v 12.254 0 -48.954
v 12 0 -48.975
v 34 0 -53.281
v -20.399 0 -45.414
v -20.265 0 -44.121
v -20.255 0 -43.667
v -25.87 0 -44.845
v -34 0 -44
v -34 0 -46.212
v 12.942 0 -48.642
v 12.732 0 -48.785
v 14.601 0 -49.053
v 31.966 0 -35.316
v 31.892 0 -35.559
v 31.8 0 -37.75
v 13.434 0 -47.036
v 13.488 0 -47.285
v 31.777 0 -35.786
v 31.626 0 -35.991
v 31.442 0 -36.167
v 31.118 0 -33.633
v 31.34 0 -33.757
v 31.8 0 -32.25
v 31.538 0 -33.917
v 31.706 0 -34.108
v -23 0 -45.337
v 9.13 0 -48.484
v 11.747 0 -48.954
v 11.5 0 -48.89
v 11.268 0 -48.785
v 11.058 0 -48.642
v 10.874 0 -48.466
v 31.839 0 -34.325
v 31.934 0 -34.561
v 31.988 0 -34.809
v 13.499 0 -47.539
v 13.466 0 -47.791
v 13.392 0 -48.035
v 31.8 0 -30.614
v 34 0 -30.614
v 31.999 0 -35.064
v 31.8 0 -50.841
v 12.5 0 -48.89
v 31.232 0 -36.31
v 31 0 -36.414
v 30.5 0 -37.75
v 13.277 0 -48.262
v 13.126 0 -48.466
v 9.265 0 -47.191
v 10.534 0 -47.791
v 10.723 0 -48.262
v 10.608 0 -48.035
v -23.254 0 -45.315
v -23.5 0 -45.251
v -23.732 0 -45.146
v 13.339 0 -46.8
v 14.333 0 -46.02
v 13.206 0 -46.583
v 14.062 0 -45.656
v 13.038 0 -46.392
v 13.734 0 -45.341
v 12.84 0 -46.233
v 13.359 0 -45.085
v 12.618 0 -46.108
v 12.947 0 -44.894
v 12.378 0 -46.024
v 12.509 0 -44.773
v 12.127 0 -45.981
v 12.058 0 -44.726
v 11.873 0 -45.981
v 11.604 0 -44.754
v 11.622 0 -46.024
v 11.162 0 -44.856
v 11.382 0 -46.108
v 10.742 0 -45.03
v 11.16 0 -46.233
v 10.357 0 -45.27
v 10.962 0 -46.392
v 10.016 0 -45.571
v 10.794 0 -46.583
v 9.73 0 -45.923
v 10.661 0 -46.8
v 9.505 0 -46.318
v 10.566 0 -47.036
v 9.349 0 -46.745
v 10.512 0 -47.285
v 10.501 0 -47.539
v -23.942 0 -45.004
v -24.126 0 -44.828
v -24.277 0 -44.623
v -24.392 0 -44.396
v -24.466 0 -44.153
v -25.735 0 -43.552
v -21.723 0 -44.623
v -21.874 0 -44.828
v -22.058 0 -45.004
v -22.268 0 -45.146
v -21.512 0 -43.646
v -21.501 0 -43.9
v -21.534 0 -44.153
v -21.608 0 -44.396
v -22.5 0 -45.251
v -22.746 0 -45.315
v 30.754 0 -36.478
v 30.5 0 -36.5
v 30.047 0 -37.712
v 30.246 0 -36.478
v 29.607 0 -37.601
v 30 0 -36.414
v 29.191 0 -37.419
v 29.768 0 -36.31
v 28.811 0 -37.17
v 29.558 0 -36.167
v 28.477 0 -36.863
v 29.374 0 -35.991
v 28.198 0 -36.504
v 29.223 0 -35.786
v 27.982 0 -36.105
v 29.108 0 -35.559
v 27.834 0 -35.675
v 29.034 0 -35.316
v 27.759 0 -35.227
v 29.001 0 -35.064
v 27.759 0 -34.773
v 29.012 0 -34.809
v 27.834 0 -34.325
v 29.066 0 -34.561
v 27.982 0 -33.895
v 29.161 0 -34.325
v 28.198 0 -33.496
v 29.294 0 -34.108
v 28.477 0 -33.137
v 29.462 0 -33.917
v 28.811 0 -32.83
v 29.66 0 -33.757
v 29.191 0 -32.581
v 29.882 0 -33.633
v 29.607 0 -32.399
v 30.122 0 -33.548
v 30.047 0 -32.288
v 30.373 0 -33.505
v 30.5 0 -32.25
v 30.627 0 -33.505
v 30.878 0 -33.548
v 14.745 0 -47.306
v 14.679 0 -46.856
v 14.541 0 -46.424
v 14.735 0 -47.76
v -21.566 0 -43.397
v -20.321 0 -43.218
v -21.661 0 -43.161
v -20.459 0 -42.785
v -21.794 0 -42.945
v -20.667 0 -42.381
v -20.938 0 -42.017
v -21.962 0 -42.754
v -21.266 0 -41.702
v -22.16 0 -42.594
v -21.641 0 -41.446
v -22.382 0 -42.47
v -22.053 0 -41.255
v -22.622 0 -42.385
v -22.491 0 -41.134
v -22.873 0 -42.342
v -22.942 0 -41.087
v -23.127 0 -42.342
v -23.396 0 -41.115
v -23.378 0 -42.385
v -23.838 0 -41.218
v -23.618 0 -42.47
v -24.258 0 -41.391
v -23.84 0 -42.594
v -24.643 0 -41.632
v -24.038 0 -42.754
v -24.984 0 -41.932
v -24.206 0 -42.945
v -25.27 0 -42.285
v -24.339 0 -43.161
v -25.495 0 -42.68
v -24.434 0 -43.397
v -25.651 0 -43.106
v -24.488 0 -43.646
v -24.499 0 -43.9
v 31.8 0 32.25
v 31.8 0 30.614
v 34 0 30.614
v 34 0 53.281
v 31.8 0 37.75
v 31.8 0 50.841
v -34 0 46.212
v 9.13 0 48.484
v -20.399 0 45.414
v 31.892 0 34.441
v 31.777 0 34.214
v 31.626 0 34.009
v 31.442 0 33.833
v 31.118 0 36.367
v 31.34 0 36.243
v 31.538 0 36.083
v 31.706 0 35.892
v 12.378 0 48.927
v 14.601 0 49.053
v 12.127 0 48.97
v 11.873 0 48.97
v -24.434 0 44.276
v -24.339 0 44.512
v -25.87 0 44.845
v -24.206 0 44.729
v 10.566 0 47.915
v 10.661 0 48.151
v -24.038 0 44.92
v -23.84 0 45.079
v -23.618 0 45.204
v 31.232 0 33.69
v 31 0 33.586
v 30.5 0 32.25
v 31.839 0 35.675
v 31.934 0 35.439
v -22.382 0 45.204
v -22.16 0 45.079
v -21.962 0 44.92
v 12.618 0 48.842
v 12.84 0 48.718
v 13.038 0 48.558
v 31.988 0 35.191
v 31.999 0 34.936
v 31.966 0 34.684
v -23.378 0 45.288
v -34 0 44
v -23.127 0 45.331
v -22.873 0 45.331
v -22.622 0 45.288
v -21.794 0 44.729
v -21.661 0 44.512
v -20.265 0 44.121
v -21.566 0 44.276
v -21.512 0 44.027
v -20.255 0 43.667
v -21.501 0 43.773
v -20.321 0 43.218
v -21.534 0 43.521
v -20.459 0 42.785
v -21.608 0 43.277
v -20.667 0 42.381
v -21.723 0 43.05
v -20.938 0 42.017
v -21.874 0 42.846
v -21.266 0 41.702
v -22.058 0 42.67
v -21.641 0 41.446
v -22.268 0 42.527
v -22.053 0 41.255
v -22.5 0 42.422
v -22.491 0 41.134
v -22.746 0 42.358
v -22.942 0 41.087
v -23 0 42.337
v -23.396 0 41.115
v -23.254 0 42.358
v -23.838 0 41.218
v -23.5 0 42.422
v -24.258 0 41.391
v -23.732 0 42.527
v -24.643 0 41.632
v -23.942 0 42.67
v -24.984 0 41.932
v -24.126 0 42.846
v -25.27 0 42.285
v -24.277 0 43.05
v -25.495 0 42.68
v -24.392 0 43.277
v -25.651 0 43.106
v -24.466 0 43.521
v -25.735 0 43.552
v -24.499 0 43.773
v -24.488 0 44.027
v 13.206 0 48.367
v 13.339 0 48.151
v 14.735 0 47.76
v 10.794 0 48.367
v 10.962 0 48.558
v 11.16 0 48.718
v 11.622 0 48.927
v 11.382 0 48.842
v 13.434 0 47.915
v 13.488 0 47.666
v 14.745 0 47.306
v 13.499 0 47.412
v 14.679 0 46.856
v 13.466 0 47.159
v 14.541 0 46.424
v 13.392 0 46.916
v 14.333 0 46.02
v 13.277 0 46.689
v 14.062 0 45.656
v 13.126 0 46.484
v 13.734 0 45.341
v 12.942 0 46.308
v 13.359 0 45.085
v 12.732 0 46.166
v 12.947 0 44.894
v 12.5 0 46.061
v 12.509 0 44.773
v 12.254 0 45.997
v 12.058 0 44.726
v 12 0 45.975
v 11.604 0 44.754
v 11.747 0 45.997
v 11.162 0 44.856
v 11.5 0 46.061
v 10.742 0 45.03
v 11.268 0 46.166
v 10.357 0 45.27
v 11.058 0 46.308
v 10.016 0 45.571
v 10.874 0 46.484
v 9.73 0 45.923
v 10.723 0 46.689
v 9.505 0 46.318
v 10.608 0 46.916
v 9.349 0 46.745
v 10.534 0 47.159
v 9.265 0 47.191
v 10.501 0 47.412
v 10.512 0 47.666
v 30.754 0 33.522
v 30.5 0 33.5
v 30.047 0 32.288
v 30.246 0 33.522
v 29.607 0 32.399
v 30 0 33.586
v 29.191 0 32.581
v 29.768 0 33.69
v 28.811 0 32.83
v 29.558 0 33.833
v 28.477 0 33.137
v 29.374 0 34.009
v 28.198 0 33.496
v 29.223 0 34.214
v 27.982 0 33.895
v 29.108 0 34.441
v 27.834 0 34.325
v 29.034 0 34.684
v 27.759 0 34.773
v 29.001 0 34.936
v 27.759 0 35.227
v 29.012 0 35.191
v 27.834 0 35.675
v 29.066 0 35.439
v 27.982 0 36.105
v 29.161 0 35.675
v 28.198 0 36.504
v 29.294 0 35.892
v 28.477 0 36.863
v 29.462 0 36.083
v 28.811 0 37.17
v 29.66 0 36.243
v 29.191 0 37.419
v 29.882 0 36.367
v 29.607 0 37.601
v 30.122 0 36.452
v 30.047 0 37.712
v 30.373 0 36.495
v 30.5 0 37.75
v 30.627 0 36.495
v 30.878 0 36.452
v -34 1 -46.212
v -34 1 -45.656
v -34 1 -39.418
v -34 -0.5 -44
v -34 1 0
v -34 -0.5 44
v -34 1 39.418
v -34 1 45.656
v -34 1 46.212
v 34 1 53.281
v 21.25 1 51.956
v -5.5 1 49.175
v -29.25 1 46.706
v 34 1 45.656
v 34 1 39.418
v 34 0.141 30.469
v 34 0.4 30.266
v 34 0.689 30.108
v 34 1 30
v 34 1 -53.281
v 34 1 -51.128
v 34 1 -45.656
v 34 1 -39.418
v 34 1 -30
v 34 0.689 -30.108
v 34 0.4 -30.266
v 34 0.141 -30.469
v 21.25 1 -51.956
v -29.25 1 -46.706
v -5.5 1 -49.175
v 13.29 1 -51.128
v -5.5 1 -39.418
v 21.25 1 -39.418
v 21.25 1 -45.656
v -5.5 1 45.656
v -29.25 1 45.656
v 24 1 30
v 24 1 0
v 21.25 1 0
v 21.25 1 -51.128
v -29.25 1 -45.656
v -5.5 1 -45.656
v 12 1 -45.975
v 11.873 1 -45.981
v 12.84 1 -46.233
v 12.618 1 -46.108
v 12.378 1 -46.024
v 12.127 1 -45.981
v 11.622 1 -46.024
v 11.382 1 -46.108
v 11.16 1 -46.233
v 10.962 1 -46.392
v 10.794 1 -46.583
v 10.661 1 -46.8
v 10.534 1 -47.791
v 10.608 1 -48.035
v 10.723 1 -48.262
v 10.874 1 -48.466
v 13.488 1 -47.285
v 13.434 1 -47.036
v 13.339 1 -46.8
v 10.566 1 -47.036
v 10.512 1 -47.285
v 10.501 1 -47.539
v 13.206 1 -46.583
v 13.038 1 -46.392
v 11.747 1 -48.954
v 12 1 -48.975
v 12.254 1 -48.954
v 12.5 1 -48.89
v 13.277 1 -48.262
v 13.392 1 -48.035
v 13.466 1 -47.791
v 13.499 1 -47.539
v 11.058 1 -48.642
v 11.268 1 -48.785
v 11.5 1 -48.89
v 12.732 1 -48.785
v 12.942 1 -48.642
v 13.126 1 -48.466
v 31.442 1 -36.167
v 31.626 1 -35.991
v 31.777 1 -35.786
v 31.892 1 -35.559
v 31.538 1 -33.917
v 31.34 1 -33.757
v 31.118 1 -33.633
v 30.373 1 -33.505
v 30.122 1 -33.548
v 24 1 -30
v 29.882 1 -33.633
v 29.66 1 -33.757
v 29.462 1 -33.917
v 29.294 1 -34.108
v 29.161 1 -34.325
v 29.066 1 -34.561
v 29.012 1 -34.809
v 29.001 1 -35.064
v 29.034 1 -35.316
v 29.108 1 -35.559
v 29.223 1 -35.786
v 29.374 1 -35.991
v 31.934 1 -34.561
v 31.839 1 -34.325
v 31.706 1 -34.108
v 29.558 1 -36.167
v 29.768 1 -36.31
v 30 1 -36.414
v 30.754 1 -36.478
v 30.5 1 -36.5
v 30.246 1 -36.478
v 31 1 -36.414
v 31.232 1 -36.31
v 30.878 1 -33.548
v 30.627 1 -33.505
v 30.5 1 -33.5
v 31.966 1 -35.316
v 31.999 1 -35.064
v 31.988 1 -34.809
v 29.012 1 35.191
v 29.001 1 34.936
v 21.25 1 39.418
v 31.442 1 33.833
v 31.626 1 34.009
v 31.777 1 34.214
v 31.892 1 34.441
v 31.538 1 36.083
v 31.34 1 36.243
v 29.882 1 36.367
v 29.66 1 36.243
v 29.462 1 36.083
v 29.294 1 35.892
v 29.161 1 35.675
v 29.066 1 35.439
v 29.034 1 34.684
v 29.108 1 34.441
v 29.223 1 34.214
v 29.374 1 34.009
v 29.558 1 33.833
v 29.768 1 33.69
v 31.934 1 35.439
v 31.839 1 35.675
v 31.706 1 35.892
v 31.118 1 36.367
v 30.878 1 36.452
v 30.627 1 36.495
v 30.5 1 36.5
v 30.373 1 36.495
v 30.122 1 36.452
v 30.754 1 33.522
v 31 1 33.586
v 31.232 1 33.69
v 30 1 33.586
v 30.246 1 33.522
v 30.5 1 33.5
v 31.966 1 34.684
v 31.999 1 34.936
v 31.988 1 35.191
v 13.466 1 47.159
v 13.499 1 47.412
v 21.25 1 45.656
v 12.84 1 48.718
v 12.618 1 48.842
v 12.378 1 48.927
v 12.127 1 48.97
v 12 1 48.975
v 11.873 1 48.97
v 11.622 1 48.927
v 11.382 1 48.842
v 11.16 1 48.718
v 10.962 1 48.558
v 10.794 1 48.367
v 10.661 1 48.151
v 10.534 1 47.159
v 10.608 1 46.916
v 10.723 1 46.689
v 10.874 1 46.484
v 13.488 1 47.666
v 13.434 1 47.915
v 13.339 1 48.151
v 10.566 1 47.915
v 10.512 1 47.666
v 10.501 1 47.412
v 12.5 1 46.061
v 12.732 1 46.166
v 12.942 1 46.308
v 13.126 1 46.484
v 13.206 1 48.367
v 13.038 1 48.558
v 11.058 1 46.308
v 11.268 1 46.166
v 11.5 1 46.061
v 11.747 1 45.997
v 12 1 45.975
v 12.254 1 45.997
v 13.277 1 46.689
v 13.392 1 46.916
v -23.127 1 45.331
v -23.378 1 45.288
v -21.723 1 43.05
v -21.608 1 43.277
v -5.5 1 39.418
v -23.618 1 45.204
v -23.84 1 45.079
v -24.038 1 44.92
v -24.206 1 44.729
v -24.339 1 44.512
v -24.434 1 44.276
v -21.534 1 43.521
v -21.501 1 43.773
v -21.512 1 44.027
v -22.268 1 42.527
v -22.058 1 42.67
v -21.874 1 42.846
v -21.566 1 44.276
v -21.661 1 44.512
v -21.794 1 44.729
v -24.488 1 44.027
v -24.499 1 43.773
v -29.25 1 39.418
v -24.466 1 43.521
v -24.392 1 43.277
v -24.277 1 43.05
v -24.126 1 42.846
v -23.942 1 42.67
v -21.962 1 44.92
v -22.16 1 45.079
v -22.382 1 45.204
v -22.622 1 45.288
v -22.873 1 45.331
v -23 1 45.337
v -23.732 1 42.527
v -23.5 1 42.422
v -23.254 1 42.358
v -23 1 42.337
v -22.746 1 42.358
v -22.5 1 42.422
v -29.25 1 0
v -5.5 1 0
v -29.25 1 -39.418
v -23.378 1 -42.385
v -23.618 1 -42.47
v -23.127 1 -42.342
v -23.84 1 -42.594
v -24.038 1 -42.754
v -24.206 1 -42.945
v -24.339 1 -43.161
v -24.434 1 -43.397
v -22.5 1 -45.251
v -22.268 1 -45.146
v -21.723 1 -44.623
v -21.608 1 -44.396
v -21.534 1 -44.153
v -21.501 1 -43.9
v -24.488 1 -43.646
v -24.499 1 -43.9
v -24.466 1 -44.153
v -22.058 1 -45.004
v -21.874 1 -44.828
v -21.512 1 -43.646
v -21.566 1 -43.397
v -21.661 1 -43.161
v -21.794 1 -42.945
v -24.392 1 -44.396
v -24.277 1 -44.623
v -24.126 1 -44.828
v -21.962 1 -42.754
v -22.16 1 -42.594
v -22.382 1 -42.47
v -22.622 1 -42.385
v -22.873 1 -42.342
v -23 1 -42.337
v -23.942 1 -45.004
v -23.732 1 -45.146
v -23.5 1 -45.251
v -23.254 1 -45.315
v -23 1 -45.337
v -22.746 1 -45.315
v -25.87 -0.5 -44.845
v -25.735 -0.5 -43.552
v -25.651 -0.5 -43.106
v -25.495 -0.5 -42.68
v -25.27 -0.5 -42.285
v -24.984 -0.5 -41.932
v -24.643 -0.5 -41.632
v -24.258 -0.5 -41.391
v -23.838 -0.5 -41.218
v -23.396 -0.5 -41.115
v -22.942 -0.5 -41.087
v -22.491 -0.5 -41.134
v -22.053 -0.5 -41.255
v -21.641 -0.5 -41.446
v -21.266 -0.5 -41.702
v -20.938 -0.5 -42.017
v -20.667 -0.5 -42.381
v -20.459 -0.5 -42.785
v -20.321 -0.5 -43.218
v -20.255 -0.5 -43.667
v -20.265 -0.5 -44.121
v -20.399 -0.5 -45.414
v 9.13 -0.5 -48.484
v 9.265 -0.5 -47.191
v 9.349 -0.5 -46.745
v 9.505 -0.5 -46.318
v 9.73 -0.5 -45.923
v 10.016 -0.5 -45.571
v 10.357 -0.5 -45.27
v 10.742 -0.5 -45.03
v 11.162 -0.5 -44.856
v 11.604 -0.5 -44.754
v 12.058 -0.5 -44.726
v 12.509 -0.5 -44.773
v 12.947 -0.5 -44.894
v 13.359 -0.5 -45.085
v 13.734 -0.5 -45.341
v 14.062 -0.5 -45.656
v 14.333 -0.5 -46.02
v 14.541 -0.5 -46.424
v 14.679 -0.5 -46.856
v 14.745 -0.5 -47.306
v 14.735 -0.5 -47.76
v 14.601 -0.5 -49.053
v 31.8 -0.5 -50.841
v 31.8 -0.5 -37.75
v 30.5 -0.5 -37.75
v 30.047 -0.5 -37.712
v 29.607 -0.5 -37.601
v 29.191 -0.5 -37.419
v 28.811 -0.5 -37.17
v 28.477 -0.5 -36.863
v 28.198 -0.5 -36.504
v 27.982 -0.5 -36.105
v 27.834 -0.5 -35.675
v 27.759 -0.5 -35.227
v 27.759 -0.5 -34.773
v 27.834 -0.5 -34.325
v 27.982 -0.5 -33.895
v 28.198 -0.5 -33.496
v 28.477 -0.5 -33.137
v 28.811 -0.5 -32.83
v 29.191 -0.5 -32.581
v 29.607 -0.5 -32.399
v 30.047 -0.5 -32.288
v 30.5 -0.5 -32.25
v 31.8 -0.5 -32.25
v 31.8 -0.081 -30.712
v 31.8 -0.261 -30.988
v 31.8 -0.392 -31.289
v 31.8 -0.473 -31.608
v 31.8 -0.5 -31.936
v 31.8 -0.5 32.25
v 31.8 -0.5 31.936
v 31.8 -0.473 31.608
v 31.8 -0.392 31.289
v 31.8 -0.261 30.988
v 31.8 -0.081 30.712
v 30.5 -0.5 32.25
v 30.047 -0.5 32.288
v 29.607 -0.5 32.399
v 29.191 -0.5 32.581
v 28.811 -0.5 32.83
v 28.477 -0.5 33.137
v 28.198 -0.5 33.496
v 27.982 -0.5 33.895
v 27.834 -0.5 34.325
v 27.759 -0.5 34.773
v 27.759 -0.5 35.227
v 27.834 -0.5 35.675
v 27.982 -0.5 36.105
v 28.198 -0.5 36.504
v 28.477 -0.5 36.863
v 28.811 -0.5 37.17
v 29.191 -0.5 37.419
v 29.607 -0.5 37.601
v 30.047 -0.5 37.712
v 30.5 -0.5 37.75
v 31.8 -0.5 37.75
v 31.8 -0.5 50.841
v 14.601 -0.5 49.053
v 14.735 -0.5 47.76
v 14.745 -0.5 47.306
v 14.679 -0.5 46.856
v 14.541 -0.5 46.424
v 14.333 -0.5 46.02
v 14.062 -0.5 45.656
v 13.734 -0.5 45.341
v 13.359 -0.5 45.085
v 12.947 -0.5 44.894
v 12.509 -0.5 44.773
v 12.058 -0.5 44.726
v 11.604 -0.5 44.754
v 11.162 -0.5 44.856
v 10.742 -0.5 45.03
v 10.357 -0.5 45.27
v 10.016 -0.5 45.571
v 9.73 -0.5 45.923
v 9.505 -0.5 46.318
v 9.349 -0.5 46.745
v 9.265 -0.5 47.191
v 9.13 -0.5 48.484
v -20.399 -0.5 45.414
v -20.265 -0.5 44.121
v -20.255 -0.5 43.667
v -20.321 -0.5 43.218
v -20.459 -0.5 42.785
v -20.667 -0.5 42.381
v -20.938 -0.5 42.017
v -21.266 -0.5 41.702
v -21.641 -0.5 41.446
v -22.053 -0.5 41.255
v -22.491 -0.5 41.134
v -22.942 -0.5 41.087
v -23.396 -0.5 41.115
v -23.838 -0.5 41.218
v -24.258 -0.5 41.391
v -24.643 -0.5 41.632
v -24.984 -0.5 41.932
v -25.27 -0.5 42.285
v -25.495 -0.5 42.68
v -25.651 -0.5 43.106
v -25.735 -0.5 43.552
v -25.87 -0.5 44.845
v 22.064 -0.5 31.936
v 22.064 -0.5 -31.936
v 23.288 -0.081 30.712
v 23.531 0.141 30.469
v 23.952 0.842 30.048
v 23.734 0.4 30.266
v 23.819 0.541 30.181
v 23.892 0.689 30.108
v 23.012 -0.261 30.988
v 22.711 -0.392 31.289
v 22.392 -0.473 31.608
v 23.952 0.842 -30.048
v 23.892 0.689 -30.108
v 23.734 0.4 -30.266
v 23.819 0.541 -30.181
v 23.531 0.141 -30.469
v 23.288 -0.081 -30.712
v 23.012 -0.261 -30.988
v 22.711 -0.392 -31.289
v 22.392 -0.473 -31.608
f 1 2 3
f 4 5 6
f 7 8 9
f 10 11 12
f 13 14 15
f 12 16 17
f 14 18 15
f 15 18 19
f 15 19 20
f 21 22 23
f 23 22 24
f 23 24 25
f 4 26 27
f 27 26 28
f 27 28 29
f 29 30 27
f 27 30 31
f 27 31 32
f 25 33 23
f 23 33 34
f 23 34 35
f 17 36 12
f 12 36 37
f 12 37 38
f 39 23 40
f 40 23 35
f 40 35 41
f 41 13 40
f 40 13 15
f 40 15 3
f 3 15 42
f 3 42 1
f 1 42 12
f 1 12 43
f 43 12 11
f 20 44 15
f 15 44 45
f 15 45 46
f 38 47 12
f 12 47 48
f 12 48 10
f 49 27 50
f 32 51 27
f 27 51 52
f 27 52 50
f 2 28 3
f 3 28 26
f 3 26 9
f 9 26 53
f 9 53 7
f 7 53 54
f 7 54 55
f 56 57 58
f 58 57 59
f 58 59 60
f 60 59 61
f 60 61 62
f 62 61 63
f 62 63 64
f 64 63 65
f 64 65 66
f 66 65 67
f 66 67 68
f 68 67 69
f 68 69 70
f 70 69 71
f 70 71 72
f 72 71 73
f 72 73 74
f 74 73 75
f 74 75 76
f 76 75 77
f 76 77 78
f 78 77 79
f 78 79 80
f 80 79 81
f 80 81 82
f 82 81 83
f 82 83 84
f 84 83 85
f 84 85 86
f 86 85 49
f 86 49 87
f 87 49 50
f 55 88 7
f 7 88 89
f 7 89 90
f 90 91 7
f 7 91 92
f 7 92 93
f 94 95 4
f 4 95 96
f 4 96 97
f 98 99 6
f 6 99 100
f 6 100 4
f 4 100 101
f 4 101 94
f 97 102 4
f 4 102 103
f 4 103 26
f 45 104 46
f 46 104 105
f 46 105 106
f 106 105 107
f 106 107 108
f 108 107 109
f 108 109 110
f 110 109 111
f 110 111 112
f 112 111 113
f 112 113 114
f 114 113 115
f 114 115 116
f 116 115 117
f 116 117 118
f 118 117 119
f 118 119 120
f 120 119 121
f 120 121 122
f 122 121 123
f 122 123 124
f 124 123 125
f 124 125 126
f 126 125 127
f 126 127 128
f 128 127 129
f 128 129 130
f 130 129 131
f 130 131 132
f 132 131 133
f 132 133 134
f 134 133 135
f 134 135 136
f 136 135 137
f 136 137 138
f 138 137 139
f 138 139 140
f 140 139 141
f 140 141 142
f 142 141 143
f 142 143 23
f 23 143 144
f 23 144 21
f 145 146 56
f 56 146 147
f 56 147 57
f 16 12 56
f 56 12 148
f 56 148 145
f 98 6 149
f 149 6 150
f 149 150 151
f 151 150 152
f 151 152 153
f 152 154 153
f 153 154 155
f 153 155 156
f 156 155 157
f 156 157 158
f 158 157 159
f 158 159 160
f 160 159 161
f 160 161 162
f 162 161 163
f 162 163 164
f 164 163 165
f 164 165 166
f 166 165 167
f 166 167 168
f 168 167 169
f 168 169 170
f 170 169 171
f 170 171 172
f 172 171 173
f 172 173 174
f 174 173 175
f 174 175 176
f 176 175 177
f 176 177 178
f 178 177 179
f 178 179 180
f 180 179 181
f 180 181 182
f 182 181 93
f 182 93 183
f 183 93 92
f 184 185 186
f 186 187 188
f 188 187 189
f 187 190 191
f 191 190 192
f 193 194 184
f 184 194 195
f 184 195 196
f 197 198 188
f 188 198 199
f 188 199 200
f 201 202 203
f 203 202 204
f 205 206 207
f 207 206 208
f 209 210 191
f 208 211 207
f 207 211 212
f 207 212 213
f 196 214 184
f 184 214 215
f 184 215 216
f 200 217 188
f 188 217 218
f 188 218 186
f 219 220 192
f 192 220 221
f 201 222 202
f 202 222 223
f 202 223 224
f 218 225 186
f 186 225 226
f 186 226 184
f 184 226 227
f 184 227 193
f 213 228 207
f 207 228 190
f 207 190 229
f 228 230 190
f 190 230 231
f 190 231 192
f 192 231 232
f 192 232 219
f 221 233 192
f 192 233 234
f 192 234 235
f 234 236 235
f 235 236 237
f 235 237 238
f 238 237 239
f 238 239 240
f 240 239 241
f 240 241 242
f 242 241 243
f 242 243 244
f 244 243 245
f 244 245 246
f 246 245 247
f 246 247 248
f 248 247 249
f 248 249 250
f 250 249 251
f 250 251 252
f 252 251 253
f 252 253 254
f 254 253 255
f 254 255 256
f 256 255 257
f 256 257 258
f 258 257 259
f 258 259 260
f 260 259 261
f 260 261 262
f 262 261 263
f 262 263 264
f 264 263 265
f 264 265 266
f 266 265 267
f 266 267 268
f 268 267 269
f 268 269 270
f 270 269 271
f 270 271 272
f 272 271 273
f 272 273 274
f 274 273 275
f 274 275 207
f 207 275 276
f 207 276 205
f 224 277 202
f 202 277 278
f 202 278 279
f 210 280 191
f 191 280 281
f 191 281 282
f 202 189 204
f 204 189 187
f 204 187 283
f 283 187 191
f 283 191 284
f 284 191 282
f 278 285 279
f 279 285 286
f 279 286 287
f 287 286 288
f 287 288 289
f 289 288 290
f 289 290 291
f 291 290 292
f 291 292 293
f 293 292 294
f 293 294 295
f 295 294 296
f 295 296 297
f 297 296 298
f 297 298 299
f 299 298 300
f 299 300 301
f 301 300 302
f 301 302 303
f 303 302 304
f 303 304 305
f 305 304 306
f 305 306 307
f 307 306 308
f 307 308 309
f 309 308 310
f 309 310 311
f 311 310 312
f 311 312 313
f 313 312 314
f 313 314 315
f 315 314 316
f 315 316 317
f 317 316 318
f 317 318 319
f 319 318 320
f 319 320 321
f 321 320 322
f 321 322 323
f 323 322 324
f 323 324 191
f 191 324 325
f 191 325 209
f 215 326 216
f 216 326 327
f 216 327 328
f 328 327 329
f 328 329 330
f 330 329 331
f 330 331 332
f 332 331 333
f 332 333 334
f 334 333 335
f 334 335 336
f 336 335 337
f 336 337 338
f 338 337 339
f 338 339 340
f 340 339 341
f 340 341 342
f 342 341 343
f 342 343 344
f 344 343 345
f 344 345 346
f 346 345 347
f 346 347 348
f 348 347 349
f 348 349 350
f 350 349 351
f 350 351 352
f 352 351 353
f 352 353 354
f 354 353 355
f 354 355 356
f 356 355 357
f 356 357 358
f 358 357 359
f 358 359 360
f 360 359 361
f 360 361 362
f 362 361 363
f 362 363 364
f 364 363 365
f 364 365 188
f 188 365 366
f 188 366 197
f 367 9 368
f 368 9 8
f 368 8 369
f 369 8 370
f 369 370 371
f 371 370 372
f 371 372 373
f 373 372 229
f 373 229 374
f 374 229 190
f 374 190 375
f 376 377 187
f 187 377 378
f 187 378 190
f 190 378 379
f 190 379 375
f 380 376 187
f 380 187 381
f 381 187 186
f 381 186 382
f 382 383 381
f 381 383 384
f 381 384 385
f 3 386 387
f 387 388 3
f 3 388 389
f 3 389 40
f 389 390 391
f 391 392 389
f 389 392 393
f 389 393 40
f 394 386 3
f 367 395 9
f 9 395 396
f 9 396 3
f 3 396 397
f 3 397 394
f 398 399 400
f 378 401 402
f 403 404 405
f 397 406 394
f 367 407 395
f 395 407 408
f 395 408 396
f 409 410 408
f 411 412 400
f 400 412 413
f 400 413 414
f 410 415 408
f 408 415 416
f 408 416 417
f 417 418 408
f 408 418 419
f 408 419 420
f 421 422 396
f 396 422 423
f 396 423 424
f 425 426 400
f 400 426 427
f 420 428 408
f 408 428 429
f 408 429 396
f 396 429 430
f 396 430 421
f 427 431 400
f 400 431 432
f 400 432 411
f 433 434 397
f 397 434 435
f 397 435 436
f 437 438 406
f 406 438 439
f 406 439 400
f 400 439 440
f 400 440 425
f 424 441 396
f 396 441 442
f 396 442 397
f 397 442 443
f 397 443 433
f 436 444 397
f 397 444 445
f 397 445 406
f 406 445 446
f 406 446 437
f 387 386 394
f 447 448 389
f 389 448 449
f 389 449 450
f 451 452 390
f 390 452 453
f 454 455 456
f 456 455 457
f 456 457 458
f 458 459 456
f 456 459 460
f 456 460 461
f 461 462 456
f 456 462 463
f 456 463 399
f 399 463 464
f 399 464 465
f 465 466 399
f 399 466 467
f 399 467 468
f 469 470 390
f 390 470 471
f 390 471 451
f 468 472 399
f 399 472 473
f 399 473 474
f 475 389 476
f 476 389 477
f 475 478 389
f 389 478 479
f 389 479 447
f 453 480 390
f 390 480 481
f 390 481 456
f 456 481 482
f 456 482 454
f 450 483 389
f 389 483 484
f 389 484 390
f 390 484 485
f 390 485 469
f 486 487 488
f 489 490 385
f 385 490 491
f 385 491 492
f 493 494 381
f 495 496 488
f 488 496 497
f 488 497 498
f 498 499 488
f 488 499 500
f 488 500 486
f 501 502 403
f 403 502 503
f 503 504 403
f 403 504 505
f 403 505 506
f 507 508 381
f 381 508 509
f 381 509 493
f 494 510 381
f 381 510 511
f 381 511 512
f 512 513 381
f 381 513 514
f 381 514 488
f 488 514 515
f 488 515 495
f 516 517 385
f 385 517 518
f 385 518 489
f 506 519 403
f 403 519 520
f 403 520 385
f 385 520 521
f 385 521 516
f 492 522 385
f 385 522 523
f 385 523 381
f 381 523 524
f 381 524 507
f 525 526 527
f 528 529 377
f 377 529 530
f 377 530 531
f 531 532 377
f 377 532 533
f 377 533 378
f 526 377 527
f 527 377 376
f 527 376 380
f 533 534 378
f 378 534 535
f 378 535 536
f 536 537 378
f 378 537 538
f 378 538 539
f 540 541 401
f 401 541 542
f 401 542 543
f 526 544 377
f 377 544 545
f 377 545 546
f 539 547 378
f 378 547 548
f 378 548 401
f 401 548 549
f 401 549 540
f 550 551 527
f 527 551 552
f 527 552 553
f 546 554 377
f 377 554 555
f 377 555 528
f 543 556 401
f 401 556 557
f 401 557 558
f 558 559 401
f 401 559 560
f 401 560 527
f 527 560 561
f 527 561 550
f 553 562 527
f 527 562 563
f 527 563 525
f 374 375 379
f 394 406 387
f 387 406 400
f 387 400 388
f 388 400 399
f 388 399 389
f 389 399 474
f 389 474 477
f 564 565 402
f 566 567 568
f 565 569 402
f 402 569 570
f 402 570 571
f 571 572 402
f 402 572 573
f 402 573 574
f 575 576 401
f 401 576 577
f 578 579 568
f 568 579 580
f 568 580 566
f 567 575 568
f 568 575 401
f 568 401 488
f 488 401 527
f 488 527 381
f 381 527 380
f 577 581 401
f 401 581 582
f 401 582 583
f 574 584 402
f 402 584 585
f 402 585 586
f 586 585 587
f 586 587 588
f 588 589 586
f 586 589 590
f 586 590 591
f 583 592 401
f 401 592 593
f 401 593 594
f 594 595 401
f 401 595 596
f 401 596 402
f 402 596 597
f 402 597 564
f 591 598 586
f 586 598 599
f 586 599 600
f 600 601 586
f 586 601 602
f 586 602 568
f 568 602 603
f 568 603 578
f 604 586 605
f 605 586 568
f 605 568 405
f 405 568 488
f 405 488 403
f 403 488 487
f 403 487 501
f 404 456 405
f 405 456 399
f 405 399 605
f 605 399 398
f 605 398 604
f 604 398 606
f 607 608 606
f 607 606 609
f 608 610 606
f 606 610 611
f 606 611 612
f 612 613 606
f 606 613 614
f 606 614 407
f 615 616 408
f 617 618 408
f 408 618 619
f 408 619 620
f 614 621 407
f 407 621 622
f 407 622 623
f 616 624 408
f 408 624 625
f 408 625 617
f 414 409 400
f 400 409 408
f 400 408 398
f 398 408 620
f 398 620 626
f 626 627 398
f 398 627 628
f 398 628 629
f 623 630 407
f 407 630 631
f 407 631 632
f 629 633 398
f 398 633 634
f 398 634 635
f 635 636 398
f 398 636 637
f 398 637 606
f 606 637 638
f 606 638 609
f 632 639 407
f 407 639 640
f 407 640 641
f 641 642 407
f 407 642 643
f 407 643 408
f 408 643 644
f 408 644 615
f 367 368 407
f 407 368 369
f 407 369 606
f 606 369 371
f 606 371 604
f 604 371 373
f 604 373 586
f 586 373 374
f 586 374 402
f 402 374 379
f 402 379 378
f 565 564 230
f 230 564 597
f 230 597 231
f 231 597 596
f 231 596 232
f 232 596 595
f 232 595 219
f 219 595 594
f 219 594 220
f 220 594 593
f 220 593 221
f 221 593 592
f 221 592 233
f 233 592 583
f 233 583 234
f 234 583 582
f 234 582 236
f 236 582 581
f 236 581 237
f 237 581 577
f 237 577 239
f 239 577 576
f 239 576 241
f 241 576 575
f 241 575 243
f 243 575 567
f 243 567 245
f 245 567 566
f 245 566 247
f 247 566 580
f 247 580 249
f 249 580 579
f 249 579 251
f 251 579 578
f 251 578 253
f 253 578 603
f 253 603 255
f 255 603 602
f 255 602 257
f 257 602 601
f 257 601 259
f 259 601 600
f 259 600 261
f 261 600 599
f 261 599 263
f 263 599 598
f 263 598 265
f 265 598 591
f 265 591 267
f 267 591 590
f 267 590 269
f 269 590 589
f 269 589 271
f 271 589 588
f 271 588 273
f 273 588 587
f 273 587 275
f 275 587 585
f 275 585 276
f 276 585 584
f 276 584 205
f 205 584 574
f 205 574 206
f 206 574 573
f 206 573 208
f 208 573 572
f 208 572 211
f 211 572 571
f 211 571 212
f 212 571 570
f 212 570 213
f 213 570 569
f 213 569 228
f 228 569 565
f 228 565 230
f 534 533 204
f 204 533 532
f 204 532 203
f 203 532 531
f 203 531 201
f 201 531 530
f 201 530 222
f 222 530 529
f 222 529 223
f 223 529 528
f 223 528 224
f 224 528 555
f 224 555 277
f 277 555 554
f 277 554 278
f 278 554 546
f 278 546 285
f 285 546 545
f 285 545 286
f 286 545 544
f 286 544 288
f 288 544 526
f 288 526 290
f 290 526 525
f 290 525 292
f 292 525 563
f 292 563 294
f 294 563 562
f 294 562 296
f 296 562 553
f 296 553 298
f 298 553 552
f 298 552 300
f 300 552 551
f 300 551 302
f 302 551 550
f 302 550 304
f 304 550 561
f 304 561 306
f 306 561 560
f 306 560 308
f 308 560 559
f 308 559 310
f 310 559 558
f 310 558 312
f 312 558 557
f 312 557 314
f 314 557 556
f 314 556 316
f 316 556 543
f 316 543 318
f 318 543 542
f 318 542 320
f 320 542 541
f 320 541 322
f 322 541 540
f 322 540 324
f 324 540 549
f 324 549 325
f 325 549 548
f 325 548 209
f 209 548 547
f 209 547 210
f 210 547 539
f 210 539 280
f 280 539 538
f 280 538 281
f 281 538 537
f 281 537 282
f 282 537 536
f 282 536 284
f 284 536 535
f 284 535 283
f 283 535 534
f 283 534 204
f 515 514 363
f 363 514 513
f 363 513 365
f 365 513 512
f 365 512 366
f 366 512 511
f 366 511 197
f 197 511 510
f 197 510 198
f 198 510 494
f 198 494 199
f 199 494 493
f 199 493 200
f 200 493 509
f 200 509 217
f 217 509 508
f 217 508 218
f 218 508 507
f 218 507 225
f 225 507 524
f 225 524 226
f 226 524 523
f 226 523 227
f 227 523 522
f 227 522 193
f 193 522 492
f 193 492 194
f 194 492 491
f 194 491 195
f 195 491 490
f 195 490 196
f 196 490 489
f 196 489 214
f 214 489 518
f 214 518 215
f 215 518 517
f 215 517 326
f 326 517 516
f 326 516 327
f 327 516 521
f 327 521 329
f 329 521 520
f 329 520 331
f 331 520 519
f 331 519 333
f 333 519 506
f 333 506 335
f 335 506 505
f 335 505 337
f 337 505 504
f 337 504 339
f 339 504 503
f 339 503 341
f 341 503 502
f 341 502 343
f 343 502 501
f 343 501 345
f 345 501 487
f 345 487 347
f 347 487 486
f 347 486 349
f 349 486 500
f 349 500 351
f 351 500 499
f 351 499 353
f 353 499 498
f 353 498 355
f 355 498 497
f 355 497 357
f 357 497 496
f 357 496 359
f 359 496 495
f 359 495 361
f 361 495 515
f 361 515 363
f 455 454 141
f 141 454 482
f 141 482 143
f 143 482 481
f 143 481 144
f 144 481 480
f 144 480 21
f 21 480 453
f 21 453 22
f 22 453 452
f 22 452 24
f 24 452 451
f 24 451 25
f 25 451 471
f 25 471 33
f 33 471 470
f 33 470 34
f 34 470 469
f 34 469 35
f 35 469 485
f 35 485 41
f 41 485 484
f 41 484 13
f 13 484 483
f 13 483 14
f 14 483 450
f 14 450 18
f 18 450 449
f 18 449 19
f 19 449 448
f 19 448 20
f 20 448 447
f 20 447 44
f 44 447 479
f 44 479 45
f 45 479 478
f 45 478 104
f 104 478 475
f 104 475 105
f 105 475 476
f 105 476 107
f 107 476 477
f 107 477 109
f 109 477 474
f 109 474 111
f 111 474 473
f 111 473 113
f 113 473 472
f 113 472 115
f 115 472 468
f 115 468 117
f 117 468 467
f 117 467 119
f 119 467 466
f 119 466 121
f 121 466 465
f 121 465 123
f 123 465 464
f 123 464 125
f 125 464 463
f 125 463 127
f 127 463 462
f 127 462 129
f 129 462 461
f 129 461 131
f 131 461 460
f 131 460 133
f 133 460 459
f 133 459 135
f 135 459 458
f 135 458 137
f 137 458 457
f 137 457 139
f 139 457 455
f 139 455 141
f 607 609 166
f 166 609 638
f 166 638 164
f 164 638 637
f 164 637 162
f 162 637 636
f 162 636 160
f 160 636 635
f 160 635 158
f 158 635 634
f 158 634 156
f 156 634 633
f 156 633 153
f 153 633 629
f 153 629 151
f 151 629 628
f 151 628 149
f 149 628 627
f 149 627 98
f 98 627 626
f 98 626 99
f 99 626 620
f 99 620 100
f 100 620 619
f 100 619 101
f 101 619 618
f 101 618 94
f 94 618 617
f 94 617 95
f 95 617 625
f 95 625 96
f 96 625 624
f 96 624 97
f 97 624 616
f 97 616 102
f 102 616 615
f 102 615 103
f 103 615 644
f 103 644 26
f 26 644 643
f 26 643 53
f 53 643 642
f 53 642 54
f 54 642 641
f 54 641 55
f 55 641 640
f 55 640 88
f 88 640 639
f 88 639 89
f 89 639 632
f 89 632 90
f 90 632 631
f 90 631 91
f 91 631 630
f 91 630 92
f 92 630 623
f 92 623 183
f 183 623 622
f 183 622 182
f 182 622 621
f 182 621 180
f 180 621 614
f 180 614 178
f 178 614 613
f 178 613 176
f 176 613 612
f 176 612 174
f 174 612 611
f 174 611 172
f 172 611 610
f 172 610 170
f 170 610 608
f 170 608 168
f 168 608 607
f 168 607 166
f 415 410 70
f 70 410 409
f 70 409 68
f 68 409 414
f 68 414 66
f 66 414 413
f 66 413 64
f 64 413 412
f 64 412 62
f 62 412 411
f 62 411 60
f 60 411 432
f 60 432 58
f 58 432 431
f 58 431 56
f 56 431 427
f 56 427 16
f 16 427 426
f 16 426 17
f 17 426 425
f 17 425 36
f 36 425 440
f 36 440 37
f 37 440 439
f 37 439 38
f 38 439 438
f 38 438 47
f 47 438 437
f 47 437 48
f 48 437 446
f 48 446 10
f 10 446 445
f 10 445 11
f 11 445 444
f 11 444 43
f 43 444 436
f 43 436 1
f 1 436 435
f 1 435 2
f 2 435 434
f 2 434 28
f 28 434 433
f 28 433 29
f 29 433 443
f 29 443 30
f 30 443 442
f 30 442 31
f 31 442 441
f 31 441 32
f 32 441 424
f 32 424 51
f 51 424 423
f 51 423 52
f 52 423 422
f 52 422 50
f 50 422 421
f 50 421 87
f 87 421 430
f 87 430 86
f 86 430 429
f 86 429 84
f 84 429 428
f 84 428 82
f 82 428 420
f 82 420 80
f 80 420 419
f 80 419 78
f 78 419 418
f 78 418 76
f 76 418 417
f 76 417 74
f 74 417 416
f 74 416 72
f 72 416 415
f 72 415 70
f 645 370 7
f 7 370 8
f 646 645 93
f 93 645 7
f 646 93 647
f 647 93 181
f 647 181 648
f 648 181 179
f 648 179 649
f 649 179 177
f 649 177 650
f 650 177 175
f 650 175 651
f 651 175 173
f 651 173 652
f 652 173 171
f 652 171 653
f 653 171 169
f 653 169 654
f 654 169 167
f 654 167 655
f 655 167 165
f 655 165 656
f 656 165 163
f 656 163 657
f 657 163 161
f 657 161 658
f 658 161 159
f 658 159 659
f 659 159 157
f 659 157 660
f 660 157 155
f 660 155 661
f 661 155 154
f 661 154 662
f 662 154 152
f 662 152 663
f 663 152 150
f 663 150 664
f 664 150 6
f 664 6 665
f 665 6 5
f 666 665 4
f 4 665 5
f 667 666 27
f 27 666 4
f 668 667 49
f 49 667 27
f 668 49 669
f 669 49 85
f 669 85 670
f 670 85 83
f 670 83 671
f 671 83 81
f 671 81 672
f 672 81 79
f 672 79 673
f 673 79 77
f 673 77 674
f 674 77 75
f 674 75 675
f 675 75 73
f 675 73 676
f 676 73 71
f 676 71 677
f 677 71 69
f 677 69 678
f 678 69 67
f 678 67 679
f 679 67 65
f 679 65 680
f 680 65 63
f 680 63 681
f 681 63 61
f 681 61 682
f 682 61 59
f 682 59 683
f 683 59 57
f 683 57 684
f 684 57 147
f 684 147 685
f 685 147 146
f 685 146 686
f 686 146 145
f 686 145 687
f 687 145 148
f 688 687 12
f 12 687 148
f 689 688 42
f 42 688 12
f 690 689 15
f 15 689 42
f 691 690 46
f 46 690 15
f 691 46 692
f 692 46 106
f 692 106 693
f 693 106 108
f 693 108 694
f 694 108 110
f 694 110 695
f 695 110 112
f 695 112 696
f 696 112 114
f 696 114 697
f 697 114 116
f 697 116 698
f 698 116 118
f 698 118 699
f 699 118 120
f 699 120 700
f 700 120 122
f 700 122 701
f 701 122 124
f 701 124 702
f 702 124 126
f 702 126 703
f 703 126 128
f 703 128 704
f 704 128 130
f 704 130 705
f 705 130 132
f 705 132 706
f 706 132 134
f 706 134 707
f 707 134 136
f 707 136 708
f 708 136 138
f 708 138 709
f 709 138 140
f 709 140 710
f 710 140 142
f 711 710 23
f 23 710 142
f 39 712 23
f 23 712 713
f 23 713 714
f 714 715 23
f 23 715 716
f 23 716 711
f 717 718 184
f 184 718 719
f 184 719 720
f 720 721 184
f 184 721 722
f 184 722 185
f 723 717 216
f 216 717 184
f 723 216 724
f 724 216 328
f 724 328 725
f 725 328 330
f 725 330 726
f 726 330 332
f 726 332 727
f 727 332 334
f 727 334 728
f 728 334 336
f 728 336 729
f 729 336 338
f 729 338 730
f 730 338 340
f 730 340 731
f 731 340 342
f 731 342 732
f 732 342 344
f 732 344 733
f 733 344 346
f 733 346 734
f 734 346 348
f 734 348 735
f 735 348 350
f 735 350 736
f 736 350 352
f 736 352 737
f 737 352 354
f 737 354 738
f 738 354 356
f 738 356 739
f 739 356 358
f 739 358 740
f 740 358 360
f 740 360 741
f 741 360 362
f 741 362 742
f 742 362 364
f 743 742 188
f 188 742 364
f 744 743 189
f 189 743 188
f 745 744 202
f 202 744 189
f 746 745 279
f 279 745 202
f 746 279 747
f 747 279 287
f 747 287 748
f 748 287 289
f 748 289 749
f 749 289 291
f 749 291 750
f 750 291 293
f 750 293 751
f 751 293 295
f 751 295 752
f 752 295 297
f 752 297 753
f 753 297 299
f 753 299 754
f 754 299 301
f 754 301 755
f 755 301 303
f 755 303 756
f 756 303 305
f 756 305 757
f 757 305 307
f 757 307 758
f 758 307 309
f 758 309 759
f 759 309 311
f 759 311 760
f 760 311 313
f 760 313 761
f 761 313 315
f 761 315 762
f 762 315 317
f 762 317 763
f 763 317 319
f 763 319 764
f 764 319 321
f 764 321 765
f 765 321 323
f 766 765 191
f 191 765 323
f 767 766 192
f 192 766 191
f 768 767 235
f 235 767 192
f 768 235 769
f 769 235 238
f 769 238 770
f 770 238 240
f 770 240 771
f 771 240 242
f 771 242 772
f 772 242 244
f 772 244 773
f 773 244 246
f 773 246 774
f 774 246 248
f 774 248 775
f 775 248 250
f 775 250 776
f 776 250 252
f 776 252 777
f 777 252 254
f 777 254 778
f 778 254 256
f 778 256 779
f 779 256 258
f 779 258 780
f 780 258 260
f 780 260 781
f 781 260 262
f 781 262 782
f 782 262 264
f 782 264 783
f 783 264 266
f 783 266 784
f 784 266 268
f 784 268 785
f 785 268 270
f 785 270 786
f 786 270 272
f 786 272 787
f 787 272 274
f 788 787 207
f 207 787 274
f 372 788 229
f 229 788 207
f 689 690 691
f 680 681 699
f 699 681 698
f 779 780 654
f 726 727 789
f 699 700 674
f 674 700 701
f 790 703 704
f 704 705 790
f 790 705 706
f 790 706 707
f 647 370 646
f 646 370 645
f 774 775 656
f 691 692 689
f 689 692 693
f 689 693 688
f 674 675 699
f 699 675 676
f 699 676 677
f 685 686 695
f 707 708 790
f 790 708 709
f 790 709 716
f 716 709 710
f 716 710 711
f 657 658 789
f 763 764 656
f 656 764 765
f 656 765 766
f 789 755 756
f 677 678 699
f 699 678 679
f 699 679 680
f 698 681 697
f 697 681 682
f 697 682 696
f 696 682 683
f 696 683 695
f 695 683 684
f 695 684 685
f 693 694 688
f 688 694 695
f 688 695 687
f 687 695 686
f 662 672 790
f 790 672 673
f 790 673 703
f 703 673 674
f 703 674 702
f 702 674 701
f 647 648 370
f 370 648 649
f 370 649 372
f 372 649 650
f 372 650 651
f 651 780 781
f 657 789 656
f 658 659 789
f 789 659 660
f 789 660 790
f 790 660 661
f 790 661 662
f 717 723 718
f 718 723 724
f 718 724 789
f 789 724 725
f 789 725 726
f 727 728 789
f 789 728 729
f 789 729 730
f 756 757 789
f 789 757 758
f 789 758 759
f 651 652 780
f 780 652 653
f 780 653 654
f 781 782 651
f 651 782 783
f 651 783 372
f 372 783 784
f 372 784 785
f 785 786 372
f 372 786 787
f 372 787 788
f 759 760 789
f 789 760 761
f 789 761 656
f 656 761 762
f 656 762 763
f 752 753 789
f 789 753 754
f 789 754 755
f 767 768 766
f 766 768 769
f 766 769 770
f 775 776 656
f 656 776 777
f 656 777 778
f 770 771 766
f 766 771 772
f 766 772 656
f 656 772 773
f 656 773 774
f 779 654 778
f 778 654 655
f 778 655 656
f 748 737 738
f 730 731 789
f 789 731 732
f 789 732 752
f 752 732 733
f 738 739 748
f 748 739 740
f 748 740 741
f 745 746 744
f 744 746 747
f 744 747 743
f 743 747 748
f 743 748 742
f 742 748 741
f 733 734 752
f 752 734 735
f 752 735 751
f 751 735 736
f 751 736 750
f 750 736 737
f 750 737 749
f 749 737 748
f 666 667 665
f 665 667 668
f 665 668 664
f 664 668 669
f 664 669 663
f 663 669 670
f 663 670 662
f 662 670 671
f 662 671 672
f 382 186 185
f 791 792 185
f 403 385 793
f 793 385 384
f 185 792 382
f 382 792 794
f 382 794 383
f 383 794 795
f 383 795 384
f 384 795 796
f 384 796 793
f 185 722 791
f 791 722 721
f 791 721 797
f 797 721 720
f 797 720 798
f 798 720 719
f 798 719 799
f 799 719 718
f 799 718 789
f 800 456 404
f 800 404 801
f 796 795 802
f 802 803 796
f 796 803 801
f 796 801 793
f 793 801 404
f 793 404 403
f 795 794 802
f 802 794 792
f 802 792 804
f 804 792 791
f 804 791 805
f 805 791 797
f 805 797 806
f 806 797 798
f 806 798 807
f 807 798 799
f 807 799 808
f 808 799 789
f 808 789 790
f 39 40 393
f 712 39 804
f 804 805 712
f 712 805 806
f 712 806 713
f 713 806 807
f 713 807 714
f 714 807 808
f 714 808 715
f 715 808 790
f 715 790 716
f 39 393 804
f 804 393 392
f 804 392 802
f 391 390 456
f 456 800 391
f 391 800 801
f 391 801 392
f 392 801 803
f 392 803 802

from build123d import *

# Parameters (mm, degrees)
EXTRUDE_1_DEPTH     = 1
CUT_EXTRUDE_1_REACH = 65.213
SKETCH_3_R          = 1.5
EXTRUDE_2_DEPTH     = 0.5
FILLET_1_R          = 2


with BuildPart() as part:
    # 스케치2 → 보스-돌출1 (new body)
    with BuildSketch(Plane(origin=(0, 0, 0), x_dir=(1, 0, 0), z_dir=(0, 1, 0))):
        Polygon((34, 30), (34, 53.281300489), (-34, 46.211993558), (-34, -46.211993558), (34, -53.281300489), (34, -30), (24, -30), (24, 30), align=None)
    extrude(amount=EXTRUDE_1_DEPTH)

    # 스케치3 → 컷-돌출1 (cut, up to next)
    with BuildSketch(Plane.XZ, mode=Mode.PRIVATE) as cut_extrude_1_sk1:
        with Locations(Location((-23, 43.836695157, 0), (0, 0, 270))):
            Circle(SKETCH_3_R)
    cut_extrude_1_tool1 = extrude(cut_extrude_1_sk1.sketch, amount=-CUT_EXTRUDE_1_REACH, mode=Mode.PRIVATE) & part.part
    # 스케치3 → 컷-돌출1 (cut, up to next)
    with BuildSketch(Plane.XZ, mode=Mode.PRIVATE) as cut_extrude_1_sk2:
        with Locations(Location((12, 47.475309018, 0), (0, 0, 270))):
            Circle(SKETCH_3_R)
    cut_extrude_1_tool2 = extrude(cut_extrude_1_sk2.sketch, amount=-CUT_EXTRUDE_1_REACH, mode=Mode.PRIVATE) & part.part
    # 스케치3 → 컷-돌출1 (cut, up to next)
    with BuildSketch(Plane.XZ, mode=Mode.PRIVATE) as cut_extrude_1_sk3:
        with Locations(Location((30.5, 35, 0), (0, 0, 270))):
            Circle(SKETCH_3_R)
    cut_extrude_1_tool3 = extrude(cut_extrude_1_sk3.sketch, amount=-CUT_EXTRUDE_1_REACH, mode=Mode.PRIVATE) & part.part
    # 스케치3 → 컷-돌출1 (cut, up to next)
    with BuildSketch(Plane.XZ, mode=Mode.PRIVATE) as cut_extrude_1_sk4:
        with Locations(Location((30.5, -35, 0), (0, 0, 270))):
            Circle(SKETCH_3_R)
    cut_extrude_1_tool4 = extrude(cut_extrude_1_sk4.sketch, amount=-CUT_EXTRUDE_1_REACH, mode=Mode.PRIVATE) & part.part
    # 스케치3 → 컷-돌출1 (cut, up to next)
    with BuildSketch(Plane.XZ, mode=Mode.PRIVATE) as cut_extrude_1_sk5:
        with Locations(Location((-23, -43.836695157, 0), (0, 0, 270))):
            Circle(SKETCH_3_R)
    cut_extrude_1_tool5 = extrude(cut_extrude_1_sk5.sketch, amount=-CUT_EXTRUDE_1_REACH, mode=Mode.PRIVATE) & part.part
    # 스케치3 → 컷-돌출1 (cut, up to next)
    with BuildSketch(Plane.XZ, mode=Mode.PRIVATE) as cut_extrude_1_sk6:
        with Locations(Location((12, -47.475309018, 0), (0, 0, 270))):
            Circle(SKETCH_3_R)
    cut_extrude_1_tool6 = extrude(cut_extrude_1_sk6.sketch, amount=-CUT_EXTRUDE_1_REACH, mode=Mode.PRIVATE) & part.part
    add(cut_extrude_1_tool1.solids().sort_by_distance((-23, 0, 43.836695))[0], mode=Mode.SUBTRACT)
    add(cut_extrude_1_tool2.solids().sort_by_distance((12, 0, 47.475309))[0], mode=Mode.SUBTRACT)
    add(cut_extrude_1_tool3.solids().sort_by_distance((30.5, 0, 35))[0], mode=Mode.SUBTRACT)
    add(cut_extrude_1_tool4.solids().sort_by_distance((30.5, 0, -35))[0], mode=Mode.SUBTRACT)
    add(cut_extrude_1_tool5.solids().sort_by_distance((-23, 0, -43.836695))[0], mode=Mode.SUBTRACT)
    add(cut_extrude_1_tool6.solids().sort_by_distance((12, 0, -47.475309))[0], mode=Mode.SUBTRACT)

    # 스케치4 → 보스-돌출2 (add)
    with BuildSketch(Plane.XZ):
        with BuildLine():
            Line((-34, 44.000136968), (-34, -44.000136968))
            Line((-34, -44.000136968), (-25.869682763, -44.845367968))
            Line((-25.869682763, -44.845367968), (-25.735258708, -43.552336579))
            ThreePointArc((-25.735258708, -43.552336579), (-22.715641421, -41.101436449), (-20.264741292, -44.121053736))
            Line((-20.264741292, -44.121053736), (-20.399165347, -45.414085125))
            Line((-20.399165347, -45.414085125), (9.130317237, -48.483981829))
            Line((9.130317237, -48.483981829), (9.264741292, -47.19095044))
            ThreePointArc((9.264741292, -47.19095044), (12.284358579, -44.740050311), (14.735258708, -47.759667597))
            Line((14.735258708, -47.759667597), (14.600834653, -49.052698986))
            Line((14.600834653, -49.052698986), (31.8, -50.840731027))
            Line((31.8, -50.840731027), (31.8, -37.75))
            Line((31.8, -37.75), (30.5, -37.75))
            ThreePointArc((30.5, -37.75), (27.75, -35), (30.5, -32.25))
            Line((30.5, -32.25), (31.8, -32.25))
            Line((31.8, -32.25), (31.8, -30))
            Line((31.8, -30), (24, -30))
            Line((24, -30), (24, 30))
            Line((24, 30), (31.8, 30))
            Line((31.8, 30), (31.8, 32.25))
            Line((31.8, 32.25), (30.5, 32.25))
            ThreePointArc((30.5, 32.25), (27.75, 35), (30.5, 37.75))
            Line((30.5, 37.75), (31.8, 37.75))
            Line((31.8, 37.75), (31.8, 50.840731027))
            Line((31.8, 50.840731027), (14.600834653, 49.052698986))
            Line((14.600834653, 49.052698986), (14.735258708, 47.759667597))
            ThreePointArc((14.735258708, 47.759667597), (12.284358579, 44.740050311), (9.264741292, 47.19095044))
            Line((9.264741292, 47.19095044), (9.130317237, 48.483981829))
            Line((9.130317237, 48.483981829), (-20.399165347, 45.414085125))
            Line((-20.399165347, 45.414085125), (-20.264741292, 44.121053736))
            ThreePointArc((-20.264741292, 44.121053736), (-22.715641421, 41.101436449), (-25.735258708, 43.552336579))
            Line((-25.735258708, 43.552336579), (-25.869682763, 44.845367968))
            Line((-25.869682763, 44.845367968), (-34, 44.000136968))
        make_face()
    extrude(amount=EXTRUDE_2_DEPTH)

    # 필렛1
    # the kernel refuses this fillet: 2 mm, written as the material it takes off along each edge
    with BuildSketch(Plane(origin=(36.641229183, -0.5, -30), x_dir=(0, 0, -1), z_dir=(-1, 0, 0)), Plane(origin=(24, -0.5, 30), x_dir=(0, 0, 1), z_dir=(1, 0, 0))) as fillet_1_piece_1:
        with BuildLine():
            CenterArc((1.936491673, -2), FILLET_1_R, 90, 75.522487814)
            Line((0, -1.5), (-0.038729833, -1.49))
            ThreePointArc((-0.038729833, -1.49), (-0.04, -0.75), (-0.04, 0))
            Line((-0.04, 0), (0, 0.04))
            Line((0, 0.04), (1.936491673, 0.04))
            Line((1.936491673, 0.04), (1.936491673, 0))
        make_face()
    extrude(amount=12.641229183, mode=Mode.SUBTRACT)
    with BuildSketch(Plane(origin=(24, -0.5, -30), x_dir=(-1, 0, 0), z_dir=(0, 0, 1))) as fillet_1_piece_2:
        with BuildLine():
            CenterArc((1.936491673, -2), FILLET_1_R, 90, 75.522487814)
            Line((0, -1.5), (-0.038729833, -1.49))
            ThreePointArc((-0.038729833, -1.49), (-0.04, -0.75), (-0.04, 0))
            Line((-0.04, 0), (0, 0.04))
            Line((0, 0.04), (1.936491673, 0.04))
            Line((1.936491673, 0.04), (1.936491673, 0))
        make_face()
    extrude(amount=60, mode=Mode.SUBTRACT)
    with BuildSketch(Plane(origin=(36.641229183, -0.5, -30), x_dir=(0, 0, -1), z_dir=(-1, 0, 0))) as fillet_1_piece_3a_section:
        with BuildLine():
            CenterArc((1.936491673, -2), FILLET_1_R, 90, 75.522487814)
            Line((0, -1.5), (-0.038729833, -1.49))
            ThreePointArc((-0.038729833, -1.49), (-0.04, -0.75), (-0.04, 0))
            Line((-0.04, 0), (0, 0.04))
            Line((0, 0.04), (1.936491673, 0.04))
            Line((1.936491673, 0.04), (1.936491673, 0))
        make_face()
    fillet_1_piece_3a = extrude(amount=17.482458366, mode=Mode.PRIVATE)
    fillet_1_piece_3a = split(fillet_1_piece_3a, bisect_by=Plane(origin=(24, -0.120816489, -30.456288202), z_dir=(-1, 0, 0)), keep=Keep.TOP, mode=Mode.PRIVATE)
    with BuildSketch(Plane(origin=(24, -0.5, -34.841229183), x_dir=(-1, 0, 0), z_dir=(0, 0, 1))) as fillet_1_piece_3b_section:
        with BuildLine():
            CenterArc((1.936491673, -2), FILLET_1_R, 90, 75.522487814)
            Line((0, -1.5), (-0.038729833, -1.49))
            ThreePointArc((-0.038729833, -1.49), (-0.04, -0.75), (-0.04, 0))
            Line((-0.04, 0), (0, 0.04))
            Line((0, 0.04), (1.936491673, 0.04))
            Line((1.936491673, 0.04), (1.936491673, 0))
        make_face()
    fillet_1_piece_3b = extrude(amount=64.841229183, mode=Mode.PRIVATE)
    fillet_1_piece_3b = split(fillet_1_piece_3b, bisect_by=Plane(origin=(23.543711798, -0.120816489, -30), z_dir=(0, 0, -1)), keep=Keep.TOP, mode=Mode.PRIVATE)
    fillet_1_piece_3 = fillet_1_piece_3a & fillet_1_piece_3b
    add(fillet_1_piece_3, mode=Mode.SUBTRACT)
    with BuildSketch(Plane(origin=(24, -0.5, -30), x_dir=(-1, 0, 0), z_dir=(0, 0, 1))) as fillet_1_piece_4a_section:
        with BuildLine():
            CenterArc((1.936491673, -2), FILLET_1_R, 90, 75.522487814)
            Line((0, -1.5), (-0.038729833, -1.49))
            ThreePointArc((-0.038729833, -1.49), (-0.04, -0.75), (-0.04, 0))
            Line((-0.04, 0), (0, 0.04))
            Line((0, 0.04), (1.936491673, 0.04))
            Line((1.936491673, 0.04), (1.936491673, 0))
        make_face()
    fillet_1_piece_4a = extrude(amount=64.841229183, mode=Mode.PRIVATE)
    fillet_1_piece_4a = split(fillet_1_piece_4a, bisect_by=Plane(origin=(23.543711798, -0.120816489, 30), z_dir=(0, 0, 1)), keep=Keep.TOP, mode=Mode.PRIVATE)
    with BuildSketch(Plane(origin=(19.158770817, -0.5, 30), x_dir=(0, 0, 1), z_dir=(1, 0, 0))) as fillet_1_piece_4b_section:
        with BuildLine():
            CenterArc((1.936491673, -2), FILLET_1_R, 90, 75.522487814)
            Line((0, -1.5), (-0.038729833, -1.49))
            ThreePointArc((-0.038729833, -1.49), (-0.04, -0.75), (-0.04, 0))
            Line((-0.04, 0), (0, 0.04))
            Line((0, 0.04), (1.936491673, 0.04))
            Line((1.936491673, 0.04), (1.936491673, 0))
        make_face()
    fillet_1_piece_4b = extrude(amount=17.482458366, mode=Mode.PRIVATE)
    fillet_1_piece_4b = split(fillet_1_piece_4b, bisect_by=Plane(origin=(24, -0.120816489, 30.456288202), z_dir=(-1, 0, 0)), keep=Keep.TOP, mode=Mode.PRIVATE)
    fillet_1_piece_4 = fillet_1_piece_4a & fillet_1_piece_4b
    add(fillet_1_piece_4, mode=Mode.SUBTRACT)


solid = part.part
